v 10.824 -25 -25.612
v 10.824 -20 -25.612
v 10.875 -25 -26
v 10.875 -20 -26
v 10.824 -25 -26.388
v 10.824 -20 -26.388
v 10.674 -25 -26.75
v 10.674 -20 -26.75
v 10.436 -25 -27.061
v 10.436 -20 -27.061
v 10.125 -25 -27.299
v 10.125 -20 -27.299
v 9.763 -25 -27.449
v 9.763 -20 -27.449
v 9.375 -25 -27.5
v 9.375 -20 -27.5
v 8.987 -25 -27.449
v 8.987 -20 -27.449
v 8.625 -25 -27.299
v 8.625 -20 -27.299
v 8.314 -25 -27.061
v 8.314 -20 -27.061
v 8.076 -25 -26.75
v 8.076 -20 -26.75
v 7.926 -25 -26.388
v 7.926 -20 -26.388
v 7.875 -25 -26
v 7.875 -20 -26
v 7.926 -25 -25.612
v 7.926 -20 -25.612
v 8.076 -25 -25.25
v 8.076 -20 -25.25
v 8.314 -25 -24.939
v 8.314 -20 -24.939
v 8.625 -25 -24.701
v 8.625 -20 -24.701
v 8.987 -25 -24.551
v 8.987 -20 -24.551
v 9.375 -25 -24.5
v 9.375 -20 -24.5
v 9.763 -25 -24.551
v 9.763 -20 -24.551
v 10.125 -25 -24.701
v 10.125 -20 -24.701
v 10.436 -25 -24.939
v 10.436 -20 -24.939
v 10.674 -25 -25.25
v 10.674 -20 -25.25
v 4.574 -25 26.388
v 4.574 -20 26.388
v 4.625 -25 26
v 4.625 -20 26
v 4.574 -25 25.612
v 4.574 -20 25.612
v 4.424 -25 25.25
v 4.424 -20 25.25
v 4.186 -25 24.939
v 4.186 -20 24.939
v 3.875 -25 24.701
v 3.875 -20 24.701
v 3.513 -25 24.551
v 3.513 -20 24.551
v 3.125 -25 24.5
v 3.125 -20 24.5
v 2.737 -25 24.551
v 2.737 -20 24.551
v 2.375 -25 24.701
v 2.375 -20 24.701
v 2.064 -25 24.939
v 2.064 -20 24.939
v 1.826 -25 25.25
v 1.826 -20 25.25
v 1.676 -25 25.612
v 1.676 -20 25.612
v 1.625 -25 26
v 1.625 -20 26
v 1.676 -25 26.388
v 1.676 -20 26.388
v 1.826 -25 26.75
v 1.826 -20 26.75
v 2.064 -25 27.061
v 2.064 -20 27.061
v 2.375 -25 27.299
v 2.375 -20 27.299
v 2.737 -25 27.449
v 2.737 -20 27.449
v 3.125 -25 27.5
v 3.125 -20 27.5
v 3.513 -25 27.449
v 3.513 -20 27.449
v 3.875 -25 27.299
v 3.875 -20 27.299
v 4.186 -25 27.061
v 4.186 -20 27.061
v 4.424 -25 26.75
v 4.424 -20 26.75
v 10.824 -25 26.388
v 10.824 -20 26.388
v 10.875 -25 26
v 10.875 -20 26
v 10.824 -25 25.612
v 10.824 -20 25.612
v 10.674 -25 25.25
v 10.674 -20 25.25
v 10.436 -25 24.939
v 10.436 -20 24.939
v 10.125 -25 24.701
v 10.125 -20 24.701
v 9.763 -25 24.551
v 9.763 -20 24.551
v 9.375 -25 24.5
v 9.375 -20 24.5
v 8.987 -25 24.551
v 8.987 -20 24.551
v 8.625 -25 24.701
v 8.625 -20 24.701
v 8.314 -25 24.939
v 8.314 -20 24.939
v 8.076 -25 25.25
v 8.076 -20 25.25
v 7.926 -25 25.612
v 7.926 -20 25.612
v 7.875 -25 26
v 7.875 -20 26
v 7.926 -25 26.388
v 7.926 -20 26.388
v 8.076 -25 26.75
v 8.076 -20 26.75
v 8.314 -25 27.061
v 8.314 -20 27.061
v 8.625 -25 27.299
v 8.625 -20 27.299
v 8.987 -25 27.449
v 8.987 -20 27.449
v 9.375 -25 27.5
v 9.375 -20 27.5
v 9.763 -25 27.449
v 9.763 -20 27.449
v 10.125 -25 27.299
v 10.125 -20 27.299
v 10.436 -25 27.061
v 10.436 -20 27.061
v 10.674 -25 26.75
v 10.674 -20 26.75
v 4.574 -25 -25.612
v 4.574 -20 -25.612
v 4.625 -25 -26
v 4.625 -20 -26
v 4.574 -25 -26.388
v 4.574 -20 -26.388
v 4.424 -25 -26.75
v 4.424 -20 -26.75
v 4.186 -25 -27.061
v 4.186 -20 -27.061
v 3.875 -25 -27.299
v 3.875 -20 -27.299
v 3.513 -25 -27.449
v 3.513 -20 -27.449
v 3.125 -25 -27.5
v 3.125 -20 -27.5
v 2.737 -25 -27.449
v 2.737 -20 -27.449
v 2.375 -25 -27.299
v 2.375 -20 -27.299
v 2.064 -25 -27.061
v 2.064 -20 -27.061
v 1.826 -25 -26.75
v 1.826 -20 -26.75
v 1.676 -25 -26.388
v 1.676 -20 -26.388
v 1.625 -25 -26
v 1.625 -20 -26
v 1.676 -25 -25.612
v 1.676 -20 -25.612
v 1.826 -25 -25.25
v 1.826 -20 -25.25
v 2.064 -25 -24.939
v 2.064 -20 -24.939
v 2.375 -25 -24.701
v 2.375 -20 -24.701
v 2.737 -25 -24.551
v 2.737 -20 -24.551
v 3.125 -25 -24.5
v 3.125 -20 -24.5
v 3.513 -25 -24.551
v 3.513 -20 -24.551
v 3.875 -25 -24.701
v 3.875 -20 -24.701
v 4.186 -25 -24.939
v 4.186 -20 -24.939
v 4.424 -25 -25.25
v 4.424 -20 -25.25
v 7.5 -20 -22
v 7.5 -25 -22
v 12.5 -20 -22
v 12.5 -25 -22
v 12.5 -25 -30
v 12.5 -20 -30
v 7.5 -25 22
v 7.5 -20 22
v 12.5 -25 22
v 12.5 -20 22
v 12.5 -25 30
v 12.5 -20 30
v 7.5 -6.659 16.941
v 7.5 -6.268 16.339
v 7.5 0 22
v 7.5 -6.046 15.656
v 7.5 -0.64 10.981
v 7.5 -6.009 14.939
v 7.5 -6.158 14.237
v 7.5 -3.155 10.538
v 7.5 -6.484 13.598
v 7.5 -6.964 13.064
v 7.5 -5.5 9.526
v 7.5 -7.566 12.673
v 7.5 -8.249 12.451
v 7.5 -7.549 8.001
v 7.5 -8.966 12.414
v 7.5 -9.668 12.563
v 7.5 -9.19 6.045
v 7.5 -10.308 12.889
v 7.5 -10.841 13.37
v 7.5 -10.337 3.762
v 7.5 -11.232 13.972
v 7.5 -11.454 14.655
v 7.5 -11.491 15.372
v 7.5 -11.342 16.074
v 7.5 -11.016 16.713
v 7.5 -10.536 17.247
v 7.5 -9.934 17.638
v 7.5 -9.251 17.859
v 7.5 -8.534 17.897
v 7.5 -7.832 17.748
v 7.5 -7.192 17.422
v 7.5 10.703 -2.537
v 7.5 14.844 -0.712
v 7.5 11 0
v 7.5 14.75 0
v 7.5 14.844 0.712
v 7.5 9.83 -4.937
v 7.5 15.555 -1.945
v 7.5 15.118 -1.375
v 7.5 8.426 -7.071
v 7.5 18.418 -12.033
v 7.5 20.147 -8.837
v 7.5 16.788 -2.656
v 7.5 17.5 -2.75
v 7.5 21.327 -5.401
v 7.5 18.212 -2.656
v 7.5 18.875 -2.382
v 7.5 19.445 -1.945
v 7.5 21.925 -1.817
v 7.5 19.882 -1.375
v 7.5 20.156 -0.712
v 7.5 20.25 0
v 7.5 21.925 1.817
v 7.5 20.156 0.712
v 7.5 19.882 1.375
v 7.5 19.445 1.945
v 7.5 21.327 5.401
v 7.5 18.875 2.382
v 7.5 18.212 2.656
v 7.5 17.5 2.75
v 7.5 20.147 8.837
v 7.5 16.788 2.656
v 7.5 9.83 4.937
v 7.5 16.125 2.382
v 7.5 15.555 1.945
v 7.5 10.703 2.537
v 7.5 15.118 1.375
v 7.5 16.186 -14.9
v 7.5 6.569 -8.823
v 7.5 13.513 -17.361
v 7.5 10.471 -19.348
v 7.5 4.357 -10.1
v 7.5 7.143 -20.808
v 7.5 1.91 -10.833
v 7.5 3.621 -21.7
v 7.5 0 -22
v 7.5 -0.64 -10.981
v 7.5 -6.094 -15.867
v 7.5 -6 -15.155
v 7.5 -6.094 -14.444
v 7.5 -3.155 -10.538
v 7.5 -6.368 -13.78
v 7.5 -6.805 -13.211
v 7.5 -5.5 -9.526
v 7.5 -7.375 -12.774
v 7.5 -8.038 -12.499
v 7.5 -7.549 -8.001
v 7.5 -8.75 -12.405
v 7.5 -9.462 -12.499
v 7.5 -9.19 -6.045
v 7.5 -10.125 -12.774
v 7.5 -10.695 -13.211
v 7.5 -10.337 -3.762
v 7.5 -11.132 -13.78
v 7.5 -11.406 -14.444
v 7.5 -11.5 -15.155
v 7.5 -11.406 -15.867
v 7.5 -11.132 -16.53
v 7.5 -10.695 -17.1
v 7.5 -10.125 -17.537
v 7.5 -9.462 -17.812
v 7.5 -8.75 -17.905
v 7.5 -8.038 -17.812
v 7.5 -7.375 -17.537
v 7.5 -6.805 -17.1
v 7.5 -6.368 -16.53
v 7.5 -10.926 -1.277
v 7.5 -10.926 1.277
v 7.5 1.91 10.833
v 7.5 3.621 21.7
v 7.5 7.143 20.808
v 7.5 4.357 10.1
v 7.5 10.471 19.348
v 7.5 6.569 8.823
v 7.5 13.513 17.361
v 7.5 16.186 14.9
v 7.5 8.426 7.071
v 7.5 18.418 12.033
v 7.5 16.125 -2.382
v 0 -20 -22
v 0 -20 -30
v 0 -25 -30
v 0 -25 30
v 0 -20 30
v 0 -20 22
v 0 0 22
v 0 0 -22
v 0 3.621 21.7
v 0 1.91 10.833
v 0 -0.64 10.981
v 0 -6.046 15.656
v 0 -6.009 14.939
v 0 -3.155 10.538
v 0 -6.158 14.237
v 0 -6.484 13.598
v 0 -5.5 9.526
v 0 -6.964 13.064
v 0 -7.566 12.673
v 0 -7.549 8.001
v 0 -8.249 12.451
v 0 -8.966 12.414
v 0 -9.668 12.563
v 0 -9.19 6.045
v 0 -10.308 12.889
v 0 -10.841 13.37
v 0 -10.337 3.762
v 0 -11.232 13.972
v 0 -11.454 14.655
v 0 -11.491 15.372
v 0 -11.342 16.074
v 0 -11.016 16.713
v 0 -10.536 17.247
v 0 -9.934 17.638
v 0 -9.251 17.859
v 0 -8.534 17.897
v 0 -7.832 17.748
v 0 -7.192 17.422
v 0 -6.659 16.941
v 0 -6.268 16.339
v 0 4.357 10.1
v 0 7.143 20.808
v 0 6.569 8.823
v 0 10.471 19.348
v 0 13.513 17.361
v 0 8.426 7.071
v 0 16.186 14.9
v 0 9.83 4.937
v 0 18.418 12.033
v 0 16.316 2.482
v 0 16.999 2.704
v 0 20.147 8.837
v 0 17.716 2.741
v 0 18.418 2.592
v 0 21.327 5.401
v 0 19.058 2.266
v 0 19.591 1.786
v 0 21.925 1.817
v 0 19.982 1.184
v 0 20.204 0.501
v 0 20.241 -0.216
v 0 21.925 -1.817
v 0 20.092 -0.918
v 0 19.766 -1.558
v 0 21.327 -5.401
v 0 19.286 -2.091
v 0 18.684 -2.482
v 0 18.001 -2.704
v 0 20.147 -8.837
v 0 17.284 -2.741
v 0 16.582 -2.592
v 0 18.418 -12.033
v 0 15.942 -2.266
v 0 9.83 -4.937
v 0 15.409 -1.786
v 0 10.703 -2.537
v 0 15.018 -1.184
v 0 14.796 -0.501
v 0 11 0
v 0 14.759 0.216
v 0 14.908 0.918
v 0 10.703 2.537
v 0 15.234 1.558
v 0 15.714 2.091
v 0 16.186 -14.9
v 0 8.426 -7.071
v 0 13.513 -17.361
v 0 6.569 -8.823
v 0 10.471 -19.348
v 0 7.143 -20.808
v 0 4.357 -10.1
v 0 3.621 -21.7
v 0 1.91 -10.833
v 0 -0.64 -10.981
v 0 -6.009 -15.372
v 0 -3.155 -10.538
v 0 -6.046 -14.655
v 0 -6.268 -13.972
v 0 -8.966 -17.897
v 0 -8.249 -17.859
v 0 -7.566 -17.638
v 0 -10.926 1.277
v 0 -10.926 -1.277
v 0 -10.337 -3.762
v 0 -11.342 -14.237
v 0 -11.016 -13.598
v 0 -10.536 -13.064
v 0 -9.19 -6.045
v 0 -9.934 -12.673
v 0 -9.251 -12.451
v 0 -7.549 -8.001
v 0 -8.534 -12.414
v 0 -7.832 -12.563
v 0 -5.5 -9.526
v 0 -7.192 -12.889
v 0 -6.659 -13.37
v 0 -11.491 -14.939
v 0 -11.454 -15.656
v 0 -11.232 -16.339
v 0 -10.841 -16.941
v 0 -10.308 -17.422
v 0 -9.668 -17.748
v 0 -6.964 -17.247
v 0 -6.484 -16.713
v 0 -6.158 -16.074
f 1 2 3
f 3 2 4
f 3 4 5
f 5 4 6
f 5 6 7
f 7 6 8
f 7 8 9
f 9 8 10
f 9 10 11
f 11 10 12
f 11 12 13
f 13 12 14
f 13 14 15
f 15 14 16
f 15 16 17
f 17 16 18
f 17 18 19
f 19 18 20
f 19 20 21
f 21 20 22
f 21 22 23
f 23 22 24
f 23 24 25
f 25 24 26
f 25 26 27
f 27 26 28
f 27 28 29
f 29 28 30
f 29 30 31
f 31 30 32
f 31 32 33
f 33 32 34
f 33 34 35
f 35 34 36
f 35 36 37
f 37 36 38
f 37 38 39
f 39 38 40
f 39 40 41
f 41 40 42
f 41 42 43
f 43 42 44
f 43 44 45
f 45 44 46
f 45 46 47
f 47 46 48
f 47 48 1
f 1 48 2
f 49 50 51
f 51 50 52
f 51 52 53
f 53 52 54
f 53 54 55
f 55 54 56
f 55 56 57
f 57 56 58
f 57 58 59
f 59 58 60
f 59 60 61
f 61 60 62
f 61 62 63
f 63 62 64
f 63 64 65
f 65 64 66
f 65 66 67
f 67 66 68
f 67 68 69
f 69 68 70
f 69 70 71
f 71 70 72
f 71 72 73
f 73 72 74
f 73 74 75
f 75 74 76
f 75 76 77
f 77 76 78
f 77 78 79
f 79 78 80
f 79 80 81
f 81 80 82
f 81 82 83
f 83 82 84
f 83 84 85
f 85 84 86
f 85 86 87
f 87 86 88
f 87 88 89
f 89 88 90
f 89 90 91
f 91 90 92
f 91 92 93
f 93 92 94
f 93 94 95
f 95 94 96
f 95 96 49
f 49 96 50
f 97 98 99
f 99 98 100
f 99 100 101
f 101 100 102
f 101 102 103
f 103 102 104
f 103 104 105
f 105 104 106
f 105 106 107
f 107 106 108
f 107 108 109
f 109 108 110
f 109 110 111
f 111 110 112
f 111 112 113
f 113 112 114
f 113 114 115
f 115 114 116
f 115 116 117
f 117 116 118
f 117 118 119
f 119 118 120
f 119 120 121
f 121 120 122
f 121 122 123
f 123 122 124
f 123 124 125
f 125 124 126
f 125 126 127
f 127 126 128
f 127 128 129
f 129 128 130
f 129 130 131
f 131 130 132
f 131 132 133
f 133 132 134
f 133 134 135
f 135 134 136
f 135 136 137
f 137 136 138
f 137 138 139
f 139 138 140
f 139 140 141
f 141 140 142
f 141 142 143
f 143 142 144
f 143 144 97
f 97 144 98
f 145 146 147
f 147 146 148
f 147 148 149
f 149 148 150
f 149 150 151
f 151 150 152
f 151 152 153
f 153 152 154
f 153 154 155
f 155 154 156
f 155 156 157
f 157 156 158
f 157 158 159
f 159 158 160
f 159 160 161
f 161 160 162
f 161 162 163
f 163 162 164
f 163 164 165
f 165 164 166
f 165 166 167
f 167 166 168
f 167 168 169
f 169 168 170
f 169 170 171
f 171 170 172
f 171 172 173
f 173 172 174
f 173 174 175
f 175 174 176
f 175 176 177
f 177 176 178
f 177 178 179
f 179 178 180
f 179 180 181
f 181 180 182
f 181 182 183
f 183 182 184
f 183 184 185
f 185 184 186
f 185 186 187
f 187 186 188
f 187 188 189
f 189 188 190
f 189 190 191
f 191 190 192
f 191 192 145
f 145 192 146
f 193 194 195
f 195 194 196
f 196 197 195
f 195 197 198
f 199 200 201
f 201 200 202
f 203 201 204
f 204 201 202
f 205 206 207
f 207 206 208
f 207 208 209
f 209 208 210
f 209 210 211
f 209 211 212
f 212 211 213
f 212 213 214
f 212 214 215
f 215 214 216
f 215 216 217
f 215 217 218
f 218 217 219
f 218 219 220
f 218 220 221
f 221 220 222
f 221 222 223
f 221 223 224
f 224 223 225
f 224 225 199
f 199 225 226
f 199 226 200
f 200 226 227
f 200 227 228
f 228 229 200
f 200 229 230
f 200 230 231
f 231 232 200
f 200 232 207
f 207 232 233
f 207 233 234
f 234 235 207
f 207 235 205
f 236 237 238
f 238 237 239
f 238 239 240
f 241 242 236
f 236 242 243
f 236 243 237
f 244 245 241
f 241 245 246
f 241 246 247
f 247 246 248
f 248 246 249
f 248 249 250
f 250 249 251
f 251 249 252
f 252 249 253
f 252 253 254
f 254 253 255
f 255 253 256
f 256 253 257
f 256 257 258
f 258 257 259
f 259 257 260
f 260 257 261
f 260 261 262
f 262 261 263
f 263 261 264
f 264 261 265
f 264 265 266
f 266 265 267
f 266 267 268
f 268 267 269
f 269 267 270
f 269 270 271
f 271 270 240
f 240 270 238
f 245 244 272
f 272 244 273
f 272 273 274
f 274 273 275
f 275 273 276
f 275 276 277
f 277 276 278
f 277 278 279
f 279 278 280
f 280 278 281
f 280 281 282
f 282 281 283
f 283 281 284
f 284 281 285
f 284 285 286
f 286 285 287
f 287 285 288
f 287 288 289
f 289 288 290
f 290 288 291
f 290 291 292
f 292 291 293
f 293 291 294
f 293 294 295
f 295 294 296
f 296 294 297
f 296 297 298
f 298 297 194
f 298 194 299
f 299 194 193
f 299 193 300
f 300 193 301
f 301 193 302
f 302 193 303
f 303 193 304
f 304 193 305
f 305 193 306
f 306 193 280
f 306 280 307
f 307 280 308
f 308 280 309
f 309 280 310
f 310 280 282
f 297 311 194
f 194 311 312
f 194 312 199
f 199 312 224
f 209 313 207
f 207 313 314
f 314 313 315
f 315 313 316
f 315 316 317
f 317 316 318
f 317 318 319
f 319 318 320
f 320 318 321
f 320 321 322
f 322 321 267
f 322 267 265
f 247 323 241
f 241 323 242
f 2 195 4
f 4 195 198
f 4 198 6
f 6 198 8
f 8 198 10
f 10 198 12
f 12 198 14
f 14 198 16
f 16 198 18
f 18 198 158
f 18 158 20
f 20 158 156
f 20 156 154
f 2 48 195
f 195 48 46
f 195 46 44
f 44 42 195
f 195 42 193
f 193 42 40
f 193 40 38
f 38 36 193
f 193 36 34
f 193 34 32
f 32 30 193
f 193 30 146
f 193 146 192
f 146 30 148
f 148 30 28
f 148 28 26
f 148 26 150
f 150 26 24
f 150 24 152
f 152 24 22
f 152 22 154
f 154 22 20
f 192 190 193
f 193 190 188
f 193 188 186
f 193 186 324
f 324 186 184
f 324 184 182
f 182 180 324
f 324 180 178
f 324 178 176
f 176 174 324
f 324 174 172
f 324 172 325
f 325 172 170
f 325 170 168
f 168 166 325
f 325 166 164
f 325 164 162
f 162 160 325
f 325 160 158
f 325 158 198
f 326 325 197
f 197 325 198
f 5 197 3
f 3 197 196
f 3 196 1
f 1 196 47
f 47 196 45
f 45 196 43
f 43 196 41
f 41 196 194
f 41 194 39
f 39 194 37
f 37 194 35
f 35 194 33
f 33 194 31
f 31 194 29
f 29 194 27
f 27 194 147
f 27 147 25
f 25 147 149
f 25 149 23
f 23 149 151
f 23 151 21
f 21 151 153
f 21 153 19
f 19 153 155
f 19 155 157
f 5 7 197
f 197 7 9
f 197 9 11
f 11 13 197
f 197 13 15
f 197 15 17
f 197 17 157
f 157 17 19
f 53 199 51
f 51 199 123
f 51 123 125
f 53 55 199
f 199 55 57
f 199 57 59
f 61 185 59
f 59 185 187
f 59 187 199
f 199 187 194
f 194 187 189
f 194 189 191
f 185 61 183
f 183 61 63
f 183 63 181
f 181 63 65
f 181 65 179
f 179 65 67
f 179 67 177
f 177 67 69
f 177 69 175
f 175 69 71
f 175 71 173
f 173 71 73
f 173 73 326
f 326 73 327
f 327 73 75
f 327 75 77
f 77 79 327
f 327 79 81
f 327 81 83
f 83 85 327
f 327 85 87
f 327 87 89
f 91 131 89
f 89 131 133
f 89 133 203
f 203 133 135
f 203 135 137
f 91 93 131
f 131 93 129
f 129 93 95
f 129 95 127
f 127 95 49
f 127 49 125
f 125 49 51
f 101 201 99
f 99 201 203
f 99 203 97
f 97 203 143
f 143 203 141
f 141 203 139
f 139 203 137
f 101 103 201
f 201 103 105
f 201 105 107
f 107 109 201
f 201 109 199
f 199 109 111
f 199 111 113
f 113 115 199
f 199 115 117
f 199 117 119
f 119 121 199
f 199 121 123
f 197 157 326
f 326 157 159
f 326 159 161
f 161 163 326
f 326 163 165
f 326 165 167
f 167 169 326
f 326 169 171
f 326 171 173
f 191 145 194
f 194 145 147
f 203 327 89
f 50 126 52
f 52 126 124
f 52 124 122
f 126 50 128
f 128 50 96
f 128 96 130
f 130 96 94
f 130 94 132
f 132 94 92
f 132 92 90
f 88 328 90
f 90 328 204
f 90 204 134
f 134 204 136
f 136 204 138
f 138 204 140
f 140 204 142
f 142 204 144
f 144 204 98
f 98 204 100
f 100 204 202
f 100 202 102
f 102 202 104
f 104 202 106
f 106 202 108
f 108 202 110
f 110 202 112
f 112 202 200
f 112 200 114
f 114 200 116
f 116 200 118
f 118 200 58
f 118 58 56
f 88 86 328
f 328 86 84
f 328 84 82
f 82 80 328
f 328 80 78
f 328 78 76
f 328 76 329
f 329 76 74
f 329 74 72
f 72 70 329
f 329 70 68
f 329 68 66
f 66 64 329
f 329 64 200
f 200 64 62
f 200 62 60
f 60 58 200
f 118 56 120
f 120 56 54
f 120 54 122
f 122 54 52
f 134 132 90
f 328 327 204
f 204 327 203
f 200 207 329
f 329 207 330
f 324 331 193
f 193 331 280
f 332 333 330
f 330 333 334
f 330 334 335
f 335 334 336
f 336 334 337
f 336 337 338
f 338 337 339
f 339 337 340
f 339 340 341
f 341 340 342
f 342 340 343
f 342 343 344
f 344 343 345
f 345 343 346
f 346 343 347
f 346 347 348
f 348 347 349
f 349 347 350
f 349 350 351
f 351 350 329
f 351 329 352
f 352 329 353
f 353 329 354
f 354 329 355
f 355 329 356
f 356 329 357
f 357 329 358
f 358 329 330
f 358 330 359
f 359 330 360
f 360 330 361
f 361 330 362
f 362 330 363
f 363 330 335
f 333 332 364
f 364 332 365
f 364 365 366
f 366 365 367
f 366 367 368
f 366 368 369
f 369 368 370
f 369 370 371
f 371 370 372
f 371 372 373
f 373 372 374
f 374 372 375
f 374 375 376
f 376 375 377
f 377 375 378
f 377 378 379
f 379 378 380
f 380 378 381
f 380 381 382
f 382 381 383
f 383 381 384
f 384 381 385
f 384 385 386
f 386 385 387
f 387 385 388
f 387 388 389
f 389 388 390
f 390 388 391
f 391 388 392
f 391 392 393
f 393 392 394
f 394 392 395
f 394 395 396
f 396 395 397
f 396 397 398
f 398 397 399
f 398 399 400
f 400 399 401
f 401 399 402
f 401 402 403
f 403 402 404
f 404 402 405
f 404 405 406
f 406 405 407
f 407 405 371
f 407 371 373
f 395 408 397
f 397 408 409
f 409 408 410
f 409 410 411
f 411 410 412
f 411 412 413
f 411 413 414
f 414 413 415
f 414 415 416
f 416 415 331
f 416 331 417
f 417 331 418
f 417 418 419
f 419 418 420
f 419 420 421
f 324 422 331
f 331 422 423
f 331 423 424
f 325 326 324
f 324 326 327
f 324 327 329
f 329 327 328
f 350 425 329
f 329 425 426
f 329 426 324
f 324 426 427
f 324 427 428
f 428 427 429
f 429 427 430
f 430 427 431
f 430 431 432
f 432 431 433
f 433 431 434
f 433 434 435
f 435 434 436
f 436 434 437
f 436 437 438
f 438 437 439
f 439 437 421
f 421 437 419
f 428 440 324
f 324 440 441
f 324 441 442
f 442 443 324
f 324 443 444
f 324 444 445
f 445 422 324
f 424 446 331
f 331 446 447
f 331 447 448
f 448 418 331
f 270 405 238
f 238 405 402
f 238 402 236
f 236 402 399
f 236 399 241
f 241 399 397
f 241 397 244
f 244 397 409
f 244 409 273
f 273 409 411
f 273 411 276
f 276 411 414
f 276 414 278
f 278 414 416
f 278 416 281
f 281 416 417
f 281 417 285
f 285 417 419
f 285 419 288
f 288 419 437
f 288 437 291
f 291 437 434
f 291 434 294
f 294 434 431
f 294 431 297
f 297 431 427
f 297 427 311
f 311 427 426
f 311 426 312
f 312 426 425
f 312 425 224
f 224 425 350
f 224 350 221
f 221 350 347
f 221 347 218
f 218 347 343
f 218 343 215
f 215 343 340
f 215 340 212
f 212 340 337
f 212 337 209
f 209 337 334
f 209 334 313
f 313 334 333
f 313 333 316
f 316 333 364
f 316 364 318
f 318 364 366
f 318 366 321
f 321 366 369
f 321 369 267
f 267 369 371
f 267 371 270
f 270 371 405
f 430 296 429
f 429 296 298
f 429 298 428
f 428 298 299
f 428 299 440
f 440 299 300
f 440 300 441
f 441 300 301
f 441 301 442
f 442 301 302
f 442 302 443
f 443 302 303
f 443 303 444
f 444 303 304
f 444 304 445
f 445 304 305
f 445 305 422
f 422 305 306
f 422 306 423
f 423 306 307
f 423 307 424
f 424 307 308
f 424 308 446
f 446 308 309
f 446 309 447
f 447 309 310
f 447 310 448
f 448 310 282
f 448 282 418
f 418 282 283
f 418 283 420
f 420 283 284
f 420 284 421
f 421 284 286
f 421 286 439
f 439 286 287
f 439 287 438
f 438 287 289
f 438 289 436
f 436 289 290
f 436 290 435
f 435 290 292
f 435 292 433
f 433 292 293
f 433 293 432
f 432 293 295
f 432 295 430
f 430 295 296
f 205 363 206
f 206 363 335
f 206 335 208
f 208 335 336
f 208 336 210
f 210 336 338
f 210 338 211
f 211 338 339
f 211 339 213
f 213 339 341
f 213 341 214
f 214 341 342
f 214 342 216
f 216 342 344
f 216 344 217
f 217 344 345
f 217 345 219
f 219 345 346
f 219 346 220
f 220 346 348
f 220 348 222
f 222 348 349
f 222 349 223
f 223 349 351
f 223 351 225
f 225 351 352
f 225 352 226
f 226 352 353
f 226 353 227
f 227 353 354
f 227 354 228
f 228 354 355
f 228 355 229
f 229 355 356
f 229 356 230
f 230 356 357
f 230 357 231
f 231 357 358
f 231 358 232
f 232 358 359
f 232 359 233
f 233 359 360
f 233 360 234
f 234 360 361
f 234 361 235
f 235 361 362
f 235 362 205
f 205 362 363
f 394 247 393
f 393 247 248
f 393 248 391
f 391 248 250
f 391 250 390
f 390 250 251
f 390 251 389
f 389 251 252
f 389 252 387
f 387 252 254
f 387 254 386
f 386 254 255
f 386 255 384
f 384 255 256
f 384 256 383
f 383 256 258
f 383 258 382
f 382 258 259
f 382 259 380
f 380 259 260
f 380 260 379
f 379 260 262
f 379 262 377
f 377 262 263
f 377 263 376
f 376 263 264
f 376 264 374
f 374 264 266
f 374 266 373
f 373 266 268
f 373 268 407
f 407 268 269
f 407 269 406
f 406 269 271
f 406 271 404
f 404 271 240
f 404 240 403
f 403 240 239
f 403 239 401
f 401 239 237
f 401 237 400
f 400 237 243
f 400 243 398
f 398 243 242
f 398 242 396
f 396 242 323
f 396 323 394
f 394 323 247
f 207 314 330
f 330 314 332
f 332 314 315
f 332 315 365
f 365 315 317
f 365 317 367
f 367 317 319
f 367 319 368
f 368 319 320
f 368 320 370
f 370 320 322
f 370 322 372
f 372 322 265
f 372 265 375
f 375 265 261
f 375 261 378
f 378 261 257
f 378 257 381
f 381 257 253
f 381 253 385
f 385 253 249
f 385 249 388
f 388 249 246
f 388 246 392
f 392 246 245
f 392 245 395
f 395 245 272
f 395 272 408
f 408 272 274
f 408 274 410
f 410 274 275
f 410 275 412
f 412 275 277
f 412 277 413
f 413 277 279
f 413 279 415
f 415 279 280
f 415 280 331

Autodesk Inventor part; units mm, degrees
ref_plane "YZ Plane" through (0, 0, 0) normal (1, 0, 0) x (0, 1, 0)
ref_plane "XZ Plane" through (0, 0, 0) normal (0, 1, 0) x (-1, 0, 0)
ref_plane "XY Plane" through (0, 0, 0) normal (0, 0, 1) x (1, 0, 0)
sketch "Sketch1" plane through (0, 0, 0) normal (1, 0, 0) x (0, 1, 0)
  circle A0 centre (0, 0) radius 11
  circle A1 centre (0, 0) radius 22
  circle A2 centre (0, 0) radius 17.5
  circle A3 centre (17.5, 0) radius 2.75
  circle A4 centre (-8.75, 15.1554) radius 2.75
  circle A5 centre (-8.75, -15.1554) radius 2.75
  dimension "d2" = 35
  dimension "d0" = 22
  dimension "d1" = 44
  dimension "d3" = 5.5
  dimension "d6" = 360
extrude "Extrusion1" add sketch "Sketch1" along normal blind 7.5 contours A1 | A3 A2 A5 A4
sketch "Sketch2" plane through (7.5, 0, 0) normal (1, 0, 0) x (0, 0, -1)
  arc A0 (2.7415, 17.2839) -> (-2.7415, 17.2839) centre (0, 0) ccw projected
  circle A1 centre (0, 0) radius 17.5
  circle A2 centre (0, 17.5) radius 2.75
  circle A3 centre (-15.1554, -8.75) radius 2.75
  circle A4 centre (15.1554, -8.75) radius 2.75
  dimension "d10" = 35
  dimension "d11" = 5.5
  dimension "d14" = 360
extrude "Extrusion2" cut sketch "Sketch2" against normal blind 10 contours A2 A0 | A0 A2 | A3 A1 | A1 A3 | A4 A1 | A1 A4
sketch "Sketch3" plane through (7.5, 0, 0) normal (1, 0, 0) x (0, 0, -1)
  line L0 (0, 0) -> (0, -25)
  line L1 (0, 0) -> (25, 0) construction
  line L2 (0, -25) -> (50, -25)
  line L3 (0, -25) -> (25, -25)
  line L4 (25, -25) -> (25, -20)
  line L5 (25, -20) -> (0, -20)
  line L6 (0, -20) -> (0, -25)
  line L7 (0, -20) -> (30, -20)
  line L8 (30, -20) -> (30, -25)
  line L9 (30, -25) -> (0, -25)
  line L10 (0, -25) -> (0, -20)
  line L11 (30, -25) -> (-30, -25)
  line L12 (-30, -25) -> (-30, -20)
  line L13 (-30, -20) -> (30, -20)
  line L14 (30, -20) -> (30, -25)
  circle A0 centre (0, 0) radius 22 projected
  line L15 (25, -25) -> (-22, -25)
  line L16 (-22, -25) -> (-22, 0)
  line L17 (-22, 0) -> (25, 0)
  line L18 (22, 0) -> (-22, 0)
  line L19 (-22, 0) -> (-22, -25)
  line L20 (-22, -25) -> (22, -25)
  line L21 (22, -25) -> (22, 0)
  line L22 (30, -20) -> (22, -20)
  line L23 (22, -20) -> (22, -25)
  line L24 (22, -25) -> (30, -25)
  line L25 (30, -25) -> (30, -20)
  line L26 (-30, -20) -> (-22, -20)
  line L27 (-22, -20) -> (-22, -25)
  line L28 (-22, -25) -> (-30, -25)
  line L29 (-30, -25) -> (-30, -20)
  dimension "d18" = 25
  dimension "d19" = 90
  dimension "d20" = 50
  dimension "d21" = 25
  dimension "d22" = 5
  dimension "d23" = 30
  dimension "d24" = 5
  dimension "d25" = 60
  dimension "d26" = 5
extrude "Extrusion3" add sketch "Sketch3" against normal blind 7.5 contours L5 A0 L0 | A0 L13 L16 | L21 L5 A0 | A0 L5 L21 L2 L0 | L0 L11 L16 L13 A0 | L16 L11 L12 L13 | L5 L4 L2 L21 | L7 L8 L2 L4
sketch "Sketch5" plane through (7.5, 0, 0) normal (1, 0, 0) x (0, 0, -1)
  line L0 (30, -20) -> (30, -25) projected
  line L1 (22, -20) -> (30, -20) projected
  line L2 (30, -25) -> (22, -25)
  line L3 (22, -25) -> (22, -20)
  line L4 (22, -20) -> (30, -20)
  line L5 (30, -20) -> (30, -25)
  line L6 (-30, -20) -> (-30, -25) projected
  line L7 (-30, -25) -> (-22, -25)
  line L8 (-22, -25) -> (-22, -20)
  line L9 (-22, -20) -> (-30, -20)
  line L10 (-30, -20) -> (-30, -25)
  point P0 (0, 0)
extrude "Extrusion5" add sketch "Sketch5" along normal blind 5
sketch "Sketch8" plane through (0, -20, 30) normal (0, 1, 0) x (1, 0, 0)
  circle A0 centre (3.125, 4) radius 1.5
  circle A1 centre (9.375, 4) radius 1.5
  circle A2 centre (9.375, 56) radius 1.5
  circle A3 centre (3.125, 56) radius 1.5
  point P0 (0, 8)
  point P1 (12.5, 0)
  point P2 (12.5, 52)
  point P3 (0, 60)
  point P4 (0, 52)
extrude "Extrusion7" cut sketch "Sketch8" against normal blind 5
properties part number "Slipring_mount"
